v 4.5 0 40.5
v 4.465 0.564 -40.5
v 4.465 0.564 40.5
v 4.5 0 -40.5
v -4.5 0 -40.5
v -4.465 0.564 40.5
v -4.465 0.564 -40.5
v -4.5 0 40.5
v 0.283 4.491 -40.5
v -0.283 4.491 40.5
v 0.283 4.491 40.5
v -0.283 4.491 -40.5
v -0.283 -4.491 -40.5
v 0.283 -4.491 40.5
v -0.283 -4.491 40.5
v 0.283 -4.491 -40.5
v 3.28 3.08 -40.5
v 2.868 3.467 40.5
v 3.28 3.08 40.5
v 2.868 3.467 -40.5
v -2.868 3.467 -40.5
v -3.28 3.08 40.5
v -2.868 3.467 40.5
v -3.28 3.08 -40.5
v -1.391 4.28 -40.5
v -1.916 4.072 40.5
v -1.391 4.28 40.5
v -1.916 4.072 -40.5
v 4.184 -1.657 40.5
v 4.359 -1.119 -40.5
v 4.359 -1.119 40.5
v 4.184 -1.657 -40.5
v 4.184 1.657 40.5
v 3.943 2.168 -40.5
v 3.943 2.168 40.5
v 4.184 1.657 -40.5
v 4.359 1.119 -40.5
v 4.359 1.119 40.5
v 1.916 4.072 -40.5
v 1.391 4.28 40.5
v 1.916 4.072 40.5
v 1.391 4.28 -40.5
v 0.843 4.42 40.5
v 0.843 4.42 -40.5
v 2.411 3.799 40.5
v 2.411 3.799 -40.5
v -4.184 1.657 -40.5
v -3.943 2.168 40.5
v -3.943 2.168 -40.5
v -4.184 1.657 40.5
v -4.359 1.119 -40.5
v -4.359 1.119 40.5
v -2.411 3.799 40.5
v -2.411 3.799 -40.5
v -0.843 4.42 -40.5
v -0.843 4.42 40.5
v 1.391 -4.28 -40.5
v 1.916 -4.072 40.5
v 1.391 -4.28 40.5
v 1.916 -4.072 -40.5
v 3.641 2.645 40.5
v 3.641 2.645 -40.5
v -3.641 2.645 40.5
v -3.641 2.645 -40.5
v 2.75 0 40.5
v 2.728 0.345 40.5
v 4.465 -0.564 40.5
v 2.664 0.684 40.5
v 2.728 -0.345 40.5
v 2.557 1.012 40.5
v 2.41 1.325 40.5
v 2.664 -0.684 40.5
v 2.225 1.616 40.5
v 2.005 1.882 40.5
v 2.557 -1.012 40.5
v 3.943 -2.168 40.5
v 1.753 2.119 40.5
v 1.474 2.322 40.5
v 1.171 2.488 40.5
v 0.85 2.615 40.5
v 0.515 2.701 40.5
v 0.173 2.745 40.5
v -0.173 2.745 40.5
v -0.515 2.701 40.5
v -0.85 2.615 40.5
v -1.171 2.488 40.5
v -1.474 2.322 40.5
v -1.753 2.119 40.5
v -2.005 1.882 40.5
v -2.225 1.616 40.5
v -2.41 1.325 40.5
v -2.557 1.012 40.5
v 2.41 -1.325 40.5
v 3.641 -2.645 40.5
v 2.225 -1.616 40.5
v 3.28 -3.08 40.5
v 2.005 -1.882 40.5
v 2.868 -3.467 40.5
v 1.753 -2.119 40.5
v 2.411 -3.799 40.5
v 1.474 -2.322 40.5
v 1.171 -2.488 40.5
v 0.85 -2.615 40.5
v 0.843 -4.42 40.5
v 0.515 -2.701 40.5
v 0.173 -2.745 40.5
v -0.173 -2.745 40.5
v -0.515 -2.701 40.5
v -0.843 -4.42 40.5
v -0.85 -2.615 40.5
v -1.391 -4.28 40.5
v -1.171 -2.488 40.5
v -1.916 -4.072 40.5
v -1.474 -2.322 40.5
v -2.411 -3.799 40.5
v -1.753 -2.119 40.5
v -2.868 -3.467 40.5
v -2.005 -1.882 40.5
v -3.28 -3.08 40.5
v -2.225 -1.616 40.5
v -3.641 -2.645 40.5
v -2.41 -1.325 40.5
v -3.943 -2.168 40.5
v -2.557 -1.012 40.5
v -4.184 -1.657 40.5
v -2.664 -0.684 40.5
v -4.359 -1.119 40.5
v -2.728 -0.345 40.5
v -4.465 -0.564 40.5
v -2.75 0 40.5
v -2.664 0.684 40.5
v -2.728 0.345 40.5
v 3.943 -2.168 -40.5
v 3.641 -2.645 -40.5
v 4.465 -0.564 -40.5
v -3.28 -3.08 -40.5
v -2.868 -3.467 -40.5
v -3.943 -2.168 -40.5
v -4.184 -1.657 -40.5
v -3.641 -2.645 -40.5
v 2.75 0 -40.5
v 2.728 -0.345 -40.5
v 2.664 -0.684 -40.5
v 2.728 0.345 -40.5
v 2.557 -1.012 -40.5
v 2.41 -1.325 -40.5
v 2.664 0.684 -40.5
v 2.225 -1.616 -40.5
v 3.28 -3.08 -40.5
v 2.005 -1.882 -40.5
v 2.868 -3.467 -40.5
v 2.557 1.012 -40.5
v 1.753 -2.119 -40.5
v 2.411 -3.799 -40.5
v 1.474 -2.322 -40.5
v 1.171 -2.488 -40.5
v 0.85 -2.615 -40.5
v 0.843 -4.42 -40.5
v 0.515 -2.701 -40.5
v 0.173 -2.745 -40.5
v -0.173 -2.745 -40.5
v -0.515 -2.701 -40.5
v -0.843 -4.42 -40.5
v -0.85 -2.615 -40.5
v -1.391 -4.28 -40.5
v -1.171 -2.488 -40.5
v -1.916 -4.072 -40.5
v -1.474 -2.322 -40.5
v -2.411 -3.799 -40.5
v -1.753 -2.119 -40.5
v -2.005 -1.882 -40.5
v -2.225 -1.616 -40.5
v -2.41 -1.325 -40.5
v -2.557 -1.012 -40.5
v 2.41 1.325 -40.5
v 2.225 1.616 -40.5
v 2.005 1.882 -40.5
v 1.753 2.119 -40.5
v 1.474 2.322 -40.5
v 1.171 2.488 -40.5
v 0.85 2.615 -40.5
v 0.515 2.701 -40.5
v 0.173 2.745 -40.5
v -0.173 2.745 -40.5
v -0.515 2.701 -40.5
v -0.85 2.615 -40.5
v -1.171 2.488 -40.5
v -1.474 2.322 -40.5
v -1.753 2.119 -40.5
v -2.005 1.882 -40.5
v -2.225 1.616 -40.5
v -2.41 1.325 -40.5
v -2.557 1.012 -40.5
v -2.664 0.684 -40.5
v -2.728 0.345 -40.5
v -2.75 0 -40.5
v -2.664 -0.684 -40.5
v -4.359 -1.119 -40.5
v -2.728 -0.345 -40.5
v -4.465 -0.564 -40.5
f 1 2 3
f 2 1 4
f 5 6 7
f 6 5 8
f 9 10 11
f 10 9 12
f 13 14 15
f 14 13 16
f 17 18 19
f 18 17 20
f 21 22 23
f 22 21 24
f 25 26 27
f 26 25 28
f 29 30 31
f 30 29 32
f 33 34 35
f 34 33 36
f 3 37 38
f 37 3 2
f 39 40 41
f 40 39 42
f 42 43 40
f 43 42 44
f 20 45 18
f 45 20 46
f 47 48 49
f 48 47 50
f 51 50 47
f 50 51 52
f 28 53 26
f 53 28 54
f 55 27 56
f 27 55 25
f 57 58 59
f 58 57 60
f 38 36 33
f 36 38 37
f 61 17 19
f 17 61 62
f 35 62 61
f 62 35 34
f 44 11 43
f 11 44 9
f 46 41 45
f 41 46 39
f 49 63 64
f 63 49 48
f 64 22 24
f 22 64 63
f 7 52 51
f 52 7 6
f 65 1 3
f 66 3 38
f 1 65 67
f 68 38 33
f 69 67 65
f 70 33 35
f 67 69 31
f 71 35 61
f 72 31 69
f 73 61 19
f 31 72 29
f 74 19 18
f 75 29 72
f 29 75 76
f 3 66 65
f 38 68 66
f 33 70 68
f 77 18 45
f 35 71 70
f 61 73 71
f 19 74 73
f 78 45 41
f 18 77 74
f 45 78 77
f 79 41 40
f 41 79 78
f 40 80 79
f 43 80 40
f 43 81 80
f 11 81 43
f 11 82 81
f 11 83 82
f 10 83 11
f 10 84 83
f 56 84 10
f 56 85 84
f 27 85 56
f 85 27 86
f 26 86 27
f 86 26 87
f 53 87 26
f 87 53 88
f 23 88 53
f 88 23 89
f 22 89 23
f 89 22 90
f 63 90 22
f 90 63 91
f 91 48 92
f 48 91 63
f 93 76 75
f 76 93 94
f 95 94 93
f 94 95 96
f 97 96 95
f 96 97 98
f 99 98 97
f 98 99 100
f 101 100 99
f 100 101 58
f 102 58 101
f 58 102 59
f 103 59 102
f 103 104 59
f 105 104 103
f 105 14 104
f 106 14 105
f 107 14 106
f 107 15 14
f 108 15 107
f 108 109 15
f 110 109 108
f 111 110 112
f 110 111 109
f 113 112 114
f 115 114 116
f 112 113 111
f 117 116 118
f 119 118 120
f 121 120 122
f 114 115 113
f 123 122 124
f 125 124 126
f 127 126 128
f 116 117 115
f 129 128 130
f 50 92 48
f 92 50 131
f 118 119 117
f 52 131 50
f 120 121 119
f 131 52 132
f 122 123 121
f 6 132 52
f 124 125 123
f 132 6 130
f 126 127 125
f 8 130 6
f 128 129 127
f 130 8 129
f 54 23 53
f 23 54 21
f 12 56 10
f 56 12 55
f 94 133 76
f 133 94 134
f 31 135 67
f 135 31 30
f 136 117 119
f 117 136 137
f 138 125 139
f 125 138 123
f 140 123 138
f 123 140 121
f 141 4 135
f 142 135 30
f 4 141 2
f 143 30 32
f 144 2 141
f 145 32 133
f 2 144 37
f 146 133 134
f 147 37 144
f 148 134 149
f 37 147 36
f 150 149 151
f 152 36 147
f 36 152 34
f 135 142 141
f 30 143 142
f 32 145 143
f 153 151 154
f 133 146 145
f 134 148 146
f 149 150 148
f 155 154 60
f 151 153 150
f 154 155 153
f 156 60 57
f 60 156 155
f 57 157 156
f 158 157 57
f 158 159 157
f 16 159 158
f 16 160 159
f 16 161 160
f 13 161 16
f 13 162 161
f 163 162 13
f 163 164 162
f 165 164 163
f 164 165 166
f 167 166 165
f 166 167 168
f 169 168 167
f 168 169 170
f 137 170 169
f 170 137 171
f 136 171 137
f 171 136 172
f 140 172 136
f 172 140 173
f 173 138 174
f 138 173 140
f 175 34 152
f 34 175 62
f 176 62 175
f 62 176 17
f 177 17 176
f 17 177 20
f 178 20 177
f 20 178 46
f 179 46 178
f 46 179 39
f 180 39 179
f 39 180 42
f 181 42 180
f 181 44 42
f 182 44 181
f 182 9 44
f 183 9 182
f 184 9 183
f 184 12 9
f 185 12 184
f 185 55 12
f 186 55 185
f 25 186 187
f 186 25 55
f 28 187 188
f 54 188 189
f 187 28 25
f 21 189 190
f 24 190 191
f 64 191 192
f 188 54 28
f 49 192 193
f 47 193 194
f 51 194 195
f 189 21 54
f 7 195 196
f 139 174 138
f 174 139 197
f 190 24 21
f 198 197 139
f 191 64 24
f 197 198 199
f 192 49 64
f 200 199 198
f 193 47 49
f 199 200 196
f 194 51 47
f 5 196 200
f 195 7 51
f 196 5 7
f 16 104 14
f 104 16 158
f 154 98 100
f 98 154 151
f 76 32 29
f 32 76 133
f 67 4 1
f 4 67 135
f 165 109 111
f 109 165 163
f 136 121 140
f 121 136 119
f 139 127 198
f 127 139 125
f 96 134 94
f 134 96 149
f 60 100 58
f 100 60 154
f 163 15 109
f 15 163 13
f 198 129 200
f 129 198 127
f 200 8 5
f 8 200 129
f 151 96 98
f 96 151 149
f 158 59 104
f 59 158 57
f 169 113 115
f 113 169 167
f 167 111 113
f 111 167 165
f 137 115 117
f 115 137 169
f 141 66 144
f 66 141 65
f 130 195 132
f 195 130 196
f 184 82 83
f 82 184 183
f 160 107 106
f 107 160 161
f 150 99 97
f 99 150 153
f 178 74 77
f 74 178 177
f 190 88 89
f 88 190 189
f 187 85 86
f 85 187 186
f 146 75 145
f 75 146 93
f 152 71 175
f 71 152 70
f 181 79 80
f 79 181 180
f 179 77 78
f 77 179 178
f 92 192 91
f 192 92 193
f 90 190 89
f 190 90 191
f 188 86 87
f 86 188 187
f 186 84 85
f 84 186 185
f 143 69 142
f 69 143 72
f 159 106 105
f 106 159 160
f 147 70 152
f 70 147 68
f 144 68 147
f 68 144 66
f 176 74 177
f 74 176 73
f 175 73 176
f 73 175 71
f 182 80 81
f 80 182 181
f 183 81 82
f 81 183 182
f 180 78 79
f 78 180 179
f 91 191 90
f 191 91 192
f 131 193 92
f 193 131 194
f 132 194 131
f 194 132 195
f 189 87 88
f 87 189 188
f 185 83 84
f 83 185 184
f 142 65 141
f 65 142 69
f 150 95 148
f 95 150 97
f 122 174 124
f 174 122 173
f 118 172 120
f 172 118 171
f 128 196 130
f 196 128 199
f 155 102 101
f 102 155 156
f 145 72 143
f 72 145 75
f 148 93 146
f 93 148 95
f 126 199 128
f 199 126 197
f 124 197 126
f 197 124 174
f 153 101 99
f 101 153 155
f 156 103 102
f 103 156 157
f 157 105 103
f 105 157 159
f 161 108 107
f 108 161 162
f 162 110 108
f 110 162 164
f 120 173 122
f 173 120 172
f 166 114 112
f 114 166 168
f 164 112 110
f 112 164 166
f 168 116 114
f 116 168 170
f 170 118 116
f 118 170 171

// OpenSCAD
$fn = 50;


difference() {
	union() {
		translate(v = [0, 0, -40.5000000000]) {
			cylinder(h = 81, r = 4.5000000000);
		}
	}
	union() {
		translate(v = [0, 0, -100.0000000000]) {
			cylinder(h = 200, r = 2.7500000000);
		}
	}
}
